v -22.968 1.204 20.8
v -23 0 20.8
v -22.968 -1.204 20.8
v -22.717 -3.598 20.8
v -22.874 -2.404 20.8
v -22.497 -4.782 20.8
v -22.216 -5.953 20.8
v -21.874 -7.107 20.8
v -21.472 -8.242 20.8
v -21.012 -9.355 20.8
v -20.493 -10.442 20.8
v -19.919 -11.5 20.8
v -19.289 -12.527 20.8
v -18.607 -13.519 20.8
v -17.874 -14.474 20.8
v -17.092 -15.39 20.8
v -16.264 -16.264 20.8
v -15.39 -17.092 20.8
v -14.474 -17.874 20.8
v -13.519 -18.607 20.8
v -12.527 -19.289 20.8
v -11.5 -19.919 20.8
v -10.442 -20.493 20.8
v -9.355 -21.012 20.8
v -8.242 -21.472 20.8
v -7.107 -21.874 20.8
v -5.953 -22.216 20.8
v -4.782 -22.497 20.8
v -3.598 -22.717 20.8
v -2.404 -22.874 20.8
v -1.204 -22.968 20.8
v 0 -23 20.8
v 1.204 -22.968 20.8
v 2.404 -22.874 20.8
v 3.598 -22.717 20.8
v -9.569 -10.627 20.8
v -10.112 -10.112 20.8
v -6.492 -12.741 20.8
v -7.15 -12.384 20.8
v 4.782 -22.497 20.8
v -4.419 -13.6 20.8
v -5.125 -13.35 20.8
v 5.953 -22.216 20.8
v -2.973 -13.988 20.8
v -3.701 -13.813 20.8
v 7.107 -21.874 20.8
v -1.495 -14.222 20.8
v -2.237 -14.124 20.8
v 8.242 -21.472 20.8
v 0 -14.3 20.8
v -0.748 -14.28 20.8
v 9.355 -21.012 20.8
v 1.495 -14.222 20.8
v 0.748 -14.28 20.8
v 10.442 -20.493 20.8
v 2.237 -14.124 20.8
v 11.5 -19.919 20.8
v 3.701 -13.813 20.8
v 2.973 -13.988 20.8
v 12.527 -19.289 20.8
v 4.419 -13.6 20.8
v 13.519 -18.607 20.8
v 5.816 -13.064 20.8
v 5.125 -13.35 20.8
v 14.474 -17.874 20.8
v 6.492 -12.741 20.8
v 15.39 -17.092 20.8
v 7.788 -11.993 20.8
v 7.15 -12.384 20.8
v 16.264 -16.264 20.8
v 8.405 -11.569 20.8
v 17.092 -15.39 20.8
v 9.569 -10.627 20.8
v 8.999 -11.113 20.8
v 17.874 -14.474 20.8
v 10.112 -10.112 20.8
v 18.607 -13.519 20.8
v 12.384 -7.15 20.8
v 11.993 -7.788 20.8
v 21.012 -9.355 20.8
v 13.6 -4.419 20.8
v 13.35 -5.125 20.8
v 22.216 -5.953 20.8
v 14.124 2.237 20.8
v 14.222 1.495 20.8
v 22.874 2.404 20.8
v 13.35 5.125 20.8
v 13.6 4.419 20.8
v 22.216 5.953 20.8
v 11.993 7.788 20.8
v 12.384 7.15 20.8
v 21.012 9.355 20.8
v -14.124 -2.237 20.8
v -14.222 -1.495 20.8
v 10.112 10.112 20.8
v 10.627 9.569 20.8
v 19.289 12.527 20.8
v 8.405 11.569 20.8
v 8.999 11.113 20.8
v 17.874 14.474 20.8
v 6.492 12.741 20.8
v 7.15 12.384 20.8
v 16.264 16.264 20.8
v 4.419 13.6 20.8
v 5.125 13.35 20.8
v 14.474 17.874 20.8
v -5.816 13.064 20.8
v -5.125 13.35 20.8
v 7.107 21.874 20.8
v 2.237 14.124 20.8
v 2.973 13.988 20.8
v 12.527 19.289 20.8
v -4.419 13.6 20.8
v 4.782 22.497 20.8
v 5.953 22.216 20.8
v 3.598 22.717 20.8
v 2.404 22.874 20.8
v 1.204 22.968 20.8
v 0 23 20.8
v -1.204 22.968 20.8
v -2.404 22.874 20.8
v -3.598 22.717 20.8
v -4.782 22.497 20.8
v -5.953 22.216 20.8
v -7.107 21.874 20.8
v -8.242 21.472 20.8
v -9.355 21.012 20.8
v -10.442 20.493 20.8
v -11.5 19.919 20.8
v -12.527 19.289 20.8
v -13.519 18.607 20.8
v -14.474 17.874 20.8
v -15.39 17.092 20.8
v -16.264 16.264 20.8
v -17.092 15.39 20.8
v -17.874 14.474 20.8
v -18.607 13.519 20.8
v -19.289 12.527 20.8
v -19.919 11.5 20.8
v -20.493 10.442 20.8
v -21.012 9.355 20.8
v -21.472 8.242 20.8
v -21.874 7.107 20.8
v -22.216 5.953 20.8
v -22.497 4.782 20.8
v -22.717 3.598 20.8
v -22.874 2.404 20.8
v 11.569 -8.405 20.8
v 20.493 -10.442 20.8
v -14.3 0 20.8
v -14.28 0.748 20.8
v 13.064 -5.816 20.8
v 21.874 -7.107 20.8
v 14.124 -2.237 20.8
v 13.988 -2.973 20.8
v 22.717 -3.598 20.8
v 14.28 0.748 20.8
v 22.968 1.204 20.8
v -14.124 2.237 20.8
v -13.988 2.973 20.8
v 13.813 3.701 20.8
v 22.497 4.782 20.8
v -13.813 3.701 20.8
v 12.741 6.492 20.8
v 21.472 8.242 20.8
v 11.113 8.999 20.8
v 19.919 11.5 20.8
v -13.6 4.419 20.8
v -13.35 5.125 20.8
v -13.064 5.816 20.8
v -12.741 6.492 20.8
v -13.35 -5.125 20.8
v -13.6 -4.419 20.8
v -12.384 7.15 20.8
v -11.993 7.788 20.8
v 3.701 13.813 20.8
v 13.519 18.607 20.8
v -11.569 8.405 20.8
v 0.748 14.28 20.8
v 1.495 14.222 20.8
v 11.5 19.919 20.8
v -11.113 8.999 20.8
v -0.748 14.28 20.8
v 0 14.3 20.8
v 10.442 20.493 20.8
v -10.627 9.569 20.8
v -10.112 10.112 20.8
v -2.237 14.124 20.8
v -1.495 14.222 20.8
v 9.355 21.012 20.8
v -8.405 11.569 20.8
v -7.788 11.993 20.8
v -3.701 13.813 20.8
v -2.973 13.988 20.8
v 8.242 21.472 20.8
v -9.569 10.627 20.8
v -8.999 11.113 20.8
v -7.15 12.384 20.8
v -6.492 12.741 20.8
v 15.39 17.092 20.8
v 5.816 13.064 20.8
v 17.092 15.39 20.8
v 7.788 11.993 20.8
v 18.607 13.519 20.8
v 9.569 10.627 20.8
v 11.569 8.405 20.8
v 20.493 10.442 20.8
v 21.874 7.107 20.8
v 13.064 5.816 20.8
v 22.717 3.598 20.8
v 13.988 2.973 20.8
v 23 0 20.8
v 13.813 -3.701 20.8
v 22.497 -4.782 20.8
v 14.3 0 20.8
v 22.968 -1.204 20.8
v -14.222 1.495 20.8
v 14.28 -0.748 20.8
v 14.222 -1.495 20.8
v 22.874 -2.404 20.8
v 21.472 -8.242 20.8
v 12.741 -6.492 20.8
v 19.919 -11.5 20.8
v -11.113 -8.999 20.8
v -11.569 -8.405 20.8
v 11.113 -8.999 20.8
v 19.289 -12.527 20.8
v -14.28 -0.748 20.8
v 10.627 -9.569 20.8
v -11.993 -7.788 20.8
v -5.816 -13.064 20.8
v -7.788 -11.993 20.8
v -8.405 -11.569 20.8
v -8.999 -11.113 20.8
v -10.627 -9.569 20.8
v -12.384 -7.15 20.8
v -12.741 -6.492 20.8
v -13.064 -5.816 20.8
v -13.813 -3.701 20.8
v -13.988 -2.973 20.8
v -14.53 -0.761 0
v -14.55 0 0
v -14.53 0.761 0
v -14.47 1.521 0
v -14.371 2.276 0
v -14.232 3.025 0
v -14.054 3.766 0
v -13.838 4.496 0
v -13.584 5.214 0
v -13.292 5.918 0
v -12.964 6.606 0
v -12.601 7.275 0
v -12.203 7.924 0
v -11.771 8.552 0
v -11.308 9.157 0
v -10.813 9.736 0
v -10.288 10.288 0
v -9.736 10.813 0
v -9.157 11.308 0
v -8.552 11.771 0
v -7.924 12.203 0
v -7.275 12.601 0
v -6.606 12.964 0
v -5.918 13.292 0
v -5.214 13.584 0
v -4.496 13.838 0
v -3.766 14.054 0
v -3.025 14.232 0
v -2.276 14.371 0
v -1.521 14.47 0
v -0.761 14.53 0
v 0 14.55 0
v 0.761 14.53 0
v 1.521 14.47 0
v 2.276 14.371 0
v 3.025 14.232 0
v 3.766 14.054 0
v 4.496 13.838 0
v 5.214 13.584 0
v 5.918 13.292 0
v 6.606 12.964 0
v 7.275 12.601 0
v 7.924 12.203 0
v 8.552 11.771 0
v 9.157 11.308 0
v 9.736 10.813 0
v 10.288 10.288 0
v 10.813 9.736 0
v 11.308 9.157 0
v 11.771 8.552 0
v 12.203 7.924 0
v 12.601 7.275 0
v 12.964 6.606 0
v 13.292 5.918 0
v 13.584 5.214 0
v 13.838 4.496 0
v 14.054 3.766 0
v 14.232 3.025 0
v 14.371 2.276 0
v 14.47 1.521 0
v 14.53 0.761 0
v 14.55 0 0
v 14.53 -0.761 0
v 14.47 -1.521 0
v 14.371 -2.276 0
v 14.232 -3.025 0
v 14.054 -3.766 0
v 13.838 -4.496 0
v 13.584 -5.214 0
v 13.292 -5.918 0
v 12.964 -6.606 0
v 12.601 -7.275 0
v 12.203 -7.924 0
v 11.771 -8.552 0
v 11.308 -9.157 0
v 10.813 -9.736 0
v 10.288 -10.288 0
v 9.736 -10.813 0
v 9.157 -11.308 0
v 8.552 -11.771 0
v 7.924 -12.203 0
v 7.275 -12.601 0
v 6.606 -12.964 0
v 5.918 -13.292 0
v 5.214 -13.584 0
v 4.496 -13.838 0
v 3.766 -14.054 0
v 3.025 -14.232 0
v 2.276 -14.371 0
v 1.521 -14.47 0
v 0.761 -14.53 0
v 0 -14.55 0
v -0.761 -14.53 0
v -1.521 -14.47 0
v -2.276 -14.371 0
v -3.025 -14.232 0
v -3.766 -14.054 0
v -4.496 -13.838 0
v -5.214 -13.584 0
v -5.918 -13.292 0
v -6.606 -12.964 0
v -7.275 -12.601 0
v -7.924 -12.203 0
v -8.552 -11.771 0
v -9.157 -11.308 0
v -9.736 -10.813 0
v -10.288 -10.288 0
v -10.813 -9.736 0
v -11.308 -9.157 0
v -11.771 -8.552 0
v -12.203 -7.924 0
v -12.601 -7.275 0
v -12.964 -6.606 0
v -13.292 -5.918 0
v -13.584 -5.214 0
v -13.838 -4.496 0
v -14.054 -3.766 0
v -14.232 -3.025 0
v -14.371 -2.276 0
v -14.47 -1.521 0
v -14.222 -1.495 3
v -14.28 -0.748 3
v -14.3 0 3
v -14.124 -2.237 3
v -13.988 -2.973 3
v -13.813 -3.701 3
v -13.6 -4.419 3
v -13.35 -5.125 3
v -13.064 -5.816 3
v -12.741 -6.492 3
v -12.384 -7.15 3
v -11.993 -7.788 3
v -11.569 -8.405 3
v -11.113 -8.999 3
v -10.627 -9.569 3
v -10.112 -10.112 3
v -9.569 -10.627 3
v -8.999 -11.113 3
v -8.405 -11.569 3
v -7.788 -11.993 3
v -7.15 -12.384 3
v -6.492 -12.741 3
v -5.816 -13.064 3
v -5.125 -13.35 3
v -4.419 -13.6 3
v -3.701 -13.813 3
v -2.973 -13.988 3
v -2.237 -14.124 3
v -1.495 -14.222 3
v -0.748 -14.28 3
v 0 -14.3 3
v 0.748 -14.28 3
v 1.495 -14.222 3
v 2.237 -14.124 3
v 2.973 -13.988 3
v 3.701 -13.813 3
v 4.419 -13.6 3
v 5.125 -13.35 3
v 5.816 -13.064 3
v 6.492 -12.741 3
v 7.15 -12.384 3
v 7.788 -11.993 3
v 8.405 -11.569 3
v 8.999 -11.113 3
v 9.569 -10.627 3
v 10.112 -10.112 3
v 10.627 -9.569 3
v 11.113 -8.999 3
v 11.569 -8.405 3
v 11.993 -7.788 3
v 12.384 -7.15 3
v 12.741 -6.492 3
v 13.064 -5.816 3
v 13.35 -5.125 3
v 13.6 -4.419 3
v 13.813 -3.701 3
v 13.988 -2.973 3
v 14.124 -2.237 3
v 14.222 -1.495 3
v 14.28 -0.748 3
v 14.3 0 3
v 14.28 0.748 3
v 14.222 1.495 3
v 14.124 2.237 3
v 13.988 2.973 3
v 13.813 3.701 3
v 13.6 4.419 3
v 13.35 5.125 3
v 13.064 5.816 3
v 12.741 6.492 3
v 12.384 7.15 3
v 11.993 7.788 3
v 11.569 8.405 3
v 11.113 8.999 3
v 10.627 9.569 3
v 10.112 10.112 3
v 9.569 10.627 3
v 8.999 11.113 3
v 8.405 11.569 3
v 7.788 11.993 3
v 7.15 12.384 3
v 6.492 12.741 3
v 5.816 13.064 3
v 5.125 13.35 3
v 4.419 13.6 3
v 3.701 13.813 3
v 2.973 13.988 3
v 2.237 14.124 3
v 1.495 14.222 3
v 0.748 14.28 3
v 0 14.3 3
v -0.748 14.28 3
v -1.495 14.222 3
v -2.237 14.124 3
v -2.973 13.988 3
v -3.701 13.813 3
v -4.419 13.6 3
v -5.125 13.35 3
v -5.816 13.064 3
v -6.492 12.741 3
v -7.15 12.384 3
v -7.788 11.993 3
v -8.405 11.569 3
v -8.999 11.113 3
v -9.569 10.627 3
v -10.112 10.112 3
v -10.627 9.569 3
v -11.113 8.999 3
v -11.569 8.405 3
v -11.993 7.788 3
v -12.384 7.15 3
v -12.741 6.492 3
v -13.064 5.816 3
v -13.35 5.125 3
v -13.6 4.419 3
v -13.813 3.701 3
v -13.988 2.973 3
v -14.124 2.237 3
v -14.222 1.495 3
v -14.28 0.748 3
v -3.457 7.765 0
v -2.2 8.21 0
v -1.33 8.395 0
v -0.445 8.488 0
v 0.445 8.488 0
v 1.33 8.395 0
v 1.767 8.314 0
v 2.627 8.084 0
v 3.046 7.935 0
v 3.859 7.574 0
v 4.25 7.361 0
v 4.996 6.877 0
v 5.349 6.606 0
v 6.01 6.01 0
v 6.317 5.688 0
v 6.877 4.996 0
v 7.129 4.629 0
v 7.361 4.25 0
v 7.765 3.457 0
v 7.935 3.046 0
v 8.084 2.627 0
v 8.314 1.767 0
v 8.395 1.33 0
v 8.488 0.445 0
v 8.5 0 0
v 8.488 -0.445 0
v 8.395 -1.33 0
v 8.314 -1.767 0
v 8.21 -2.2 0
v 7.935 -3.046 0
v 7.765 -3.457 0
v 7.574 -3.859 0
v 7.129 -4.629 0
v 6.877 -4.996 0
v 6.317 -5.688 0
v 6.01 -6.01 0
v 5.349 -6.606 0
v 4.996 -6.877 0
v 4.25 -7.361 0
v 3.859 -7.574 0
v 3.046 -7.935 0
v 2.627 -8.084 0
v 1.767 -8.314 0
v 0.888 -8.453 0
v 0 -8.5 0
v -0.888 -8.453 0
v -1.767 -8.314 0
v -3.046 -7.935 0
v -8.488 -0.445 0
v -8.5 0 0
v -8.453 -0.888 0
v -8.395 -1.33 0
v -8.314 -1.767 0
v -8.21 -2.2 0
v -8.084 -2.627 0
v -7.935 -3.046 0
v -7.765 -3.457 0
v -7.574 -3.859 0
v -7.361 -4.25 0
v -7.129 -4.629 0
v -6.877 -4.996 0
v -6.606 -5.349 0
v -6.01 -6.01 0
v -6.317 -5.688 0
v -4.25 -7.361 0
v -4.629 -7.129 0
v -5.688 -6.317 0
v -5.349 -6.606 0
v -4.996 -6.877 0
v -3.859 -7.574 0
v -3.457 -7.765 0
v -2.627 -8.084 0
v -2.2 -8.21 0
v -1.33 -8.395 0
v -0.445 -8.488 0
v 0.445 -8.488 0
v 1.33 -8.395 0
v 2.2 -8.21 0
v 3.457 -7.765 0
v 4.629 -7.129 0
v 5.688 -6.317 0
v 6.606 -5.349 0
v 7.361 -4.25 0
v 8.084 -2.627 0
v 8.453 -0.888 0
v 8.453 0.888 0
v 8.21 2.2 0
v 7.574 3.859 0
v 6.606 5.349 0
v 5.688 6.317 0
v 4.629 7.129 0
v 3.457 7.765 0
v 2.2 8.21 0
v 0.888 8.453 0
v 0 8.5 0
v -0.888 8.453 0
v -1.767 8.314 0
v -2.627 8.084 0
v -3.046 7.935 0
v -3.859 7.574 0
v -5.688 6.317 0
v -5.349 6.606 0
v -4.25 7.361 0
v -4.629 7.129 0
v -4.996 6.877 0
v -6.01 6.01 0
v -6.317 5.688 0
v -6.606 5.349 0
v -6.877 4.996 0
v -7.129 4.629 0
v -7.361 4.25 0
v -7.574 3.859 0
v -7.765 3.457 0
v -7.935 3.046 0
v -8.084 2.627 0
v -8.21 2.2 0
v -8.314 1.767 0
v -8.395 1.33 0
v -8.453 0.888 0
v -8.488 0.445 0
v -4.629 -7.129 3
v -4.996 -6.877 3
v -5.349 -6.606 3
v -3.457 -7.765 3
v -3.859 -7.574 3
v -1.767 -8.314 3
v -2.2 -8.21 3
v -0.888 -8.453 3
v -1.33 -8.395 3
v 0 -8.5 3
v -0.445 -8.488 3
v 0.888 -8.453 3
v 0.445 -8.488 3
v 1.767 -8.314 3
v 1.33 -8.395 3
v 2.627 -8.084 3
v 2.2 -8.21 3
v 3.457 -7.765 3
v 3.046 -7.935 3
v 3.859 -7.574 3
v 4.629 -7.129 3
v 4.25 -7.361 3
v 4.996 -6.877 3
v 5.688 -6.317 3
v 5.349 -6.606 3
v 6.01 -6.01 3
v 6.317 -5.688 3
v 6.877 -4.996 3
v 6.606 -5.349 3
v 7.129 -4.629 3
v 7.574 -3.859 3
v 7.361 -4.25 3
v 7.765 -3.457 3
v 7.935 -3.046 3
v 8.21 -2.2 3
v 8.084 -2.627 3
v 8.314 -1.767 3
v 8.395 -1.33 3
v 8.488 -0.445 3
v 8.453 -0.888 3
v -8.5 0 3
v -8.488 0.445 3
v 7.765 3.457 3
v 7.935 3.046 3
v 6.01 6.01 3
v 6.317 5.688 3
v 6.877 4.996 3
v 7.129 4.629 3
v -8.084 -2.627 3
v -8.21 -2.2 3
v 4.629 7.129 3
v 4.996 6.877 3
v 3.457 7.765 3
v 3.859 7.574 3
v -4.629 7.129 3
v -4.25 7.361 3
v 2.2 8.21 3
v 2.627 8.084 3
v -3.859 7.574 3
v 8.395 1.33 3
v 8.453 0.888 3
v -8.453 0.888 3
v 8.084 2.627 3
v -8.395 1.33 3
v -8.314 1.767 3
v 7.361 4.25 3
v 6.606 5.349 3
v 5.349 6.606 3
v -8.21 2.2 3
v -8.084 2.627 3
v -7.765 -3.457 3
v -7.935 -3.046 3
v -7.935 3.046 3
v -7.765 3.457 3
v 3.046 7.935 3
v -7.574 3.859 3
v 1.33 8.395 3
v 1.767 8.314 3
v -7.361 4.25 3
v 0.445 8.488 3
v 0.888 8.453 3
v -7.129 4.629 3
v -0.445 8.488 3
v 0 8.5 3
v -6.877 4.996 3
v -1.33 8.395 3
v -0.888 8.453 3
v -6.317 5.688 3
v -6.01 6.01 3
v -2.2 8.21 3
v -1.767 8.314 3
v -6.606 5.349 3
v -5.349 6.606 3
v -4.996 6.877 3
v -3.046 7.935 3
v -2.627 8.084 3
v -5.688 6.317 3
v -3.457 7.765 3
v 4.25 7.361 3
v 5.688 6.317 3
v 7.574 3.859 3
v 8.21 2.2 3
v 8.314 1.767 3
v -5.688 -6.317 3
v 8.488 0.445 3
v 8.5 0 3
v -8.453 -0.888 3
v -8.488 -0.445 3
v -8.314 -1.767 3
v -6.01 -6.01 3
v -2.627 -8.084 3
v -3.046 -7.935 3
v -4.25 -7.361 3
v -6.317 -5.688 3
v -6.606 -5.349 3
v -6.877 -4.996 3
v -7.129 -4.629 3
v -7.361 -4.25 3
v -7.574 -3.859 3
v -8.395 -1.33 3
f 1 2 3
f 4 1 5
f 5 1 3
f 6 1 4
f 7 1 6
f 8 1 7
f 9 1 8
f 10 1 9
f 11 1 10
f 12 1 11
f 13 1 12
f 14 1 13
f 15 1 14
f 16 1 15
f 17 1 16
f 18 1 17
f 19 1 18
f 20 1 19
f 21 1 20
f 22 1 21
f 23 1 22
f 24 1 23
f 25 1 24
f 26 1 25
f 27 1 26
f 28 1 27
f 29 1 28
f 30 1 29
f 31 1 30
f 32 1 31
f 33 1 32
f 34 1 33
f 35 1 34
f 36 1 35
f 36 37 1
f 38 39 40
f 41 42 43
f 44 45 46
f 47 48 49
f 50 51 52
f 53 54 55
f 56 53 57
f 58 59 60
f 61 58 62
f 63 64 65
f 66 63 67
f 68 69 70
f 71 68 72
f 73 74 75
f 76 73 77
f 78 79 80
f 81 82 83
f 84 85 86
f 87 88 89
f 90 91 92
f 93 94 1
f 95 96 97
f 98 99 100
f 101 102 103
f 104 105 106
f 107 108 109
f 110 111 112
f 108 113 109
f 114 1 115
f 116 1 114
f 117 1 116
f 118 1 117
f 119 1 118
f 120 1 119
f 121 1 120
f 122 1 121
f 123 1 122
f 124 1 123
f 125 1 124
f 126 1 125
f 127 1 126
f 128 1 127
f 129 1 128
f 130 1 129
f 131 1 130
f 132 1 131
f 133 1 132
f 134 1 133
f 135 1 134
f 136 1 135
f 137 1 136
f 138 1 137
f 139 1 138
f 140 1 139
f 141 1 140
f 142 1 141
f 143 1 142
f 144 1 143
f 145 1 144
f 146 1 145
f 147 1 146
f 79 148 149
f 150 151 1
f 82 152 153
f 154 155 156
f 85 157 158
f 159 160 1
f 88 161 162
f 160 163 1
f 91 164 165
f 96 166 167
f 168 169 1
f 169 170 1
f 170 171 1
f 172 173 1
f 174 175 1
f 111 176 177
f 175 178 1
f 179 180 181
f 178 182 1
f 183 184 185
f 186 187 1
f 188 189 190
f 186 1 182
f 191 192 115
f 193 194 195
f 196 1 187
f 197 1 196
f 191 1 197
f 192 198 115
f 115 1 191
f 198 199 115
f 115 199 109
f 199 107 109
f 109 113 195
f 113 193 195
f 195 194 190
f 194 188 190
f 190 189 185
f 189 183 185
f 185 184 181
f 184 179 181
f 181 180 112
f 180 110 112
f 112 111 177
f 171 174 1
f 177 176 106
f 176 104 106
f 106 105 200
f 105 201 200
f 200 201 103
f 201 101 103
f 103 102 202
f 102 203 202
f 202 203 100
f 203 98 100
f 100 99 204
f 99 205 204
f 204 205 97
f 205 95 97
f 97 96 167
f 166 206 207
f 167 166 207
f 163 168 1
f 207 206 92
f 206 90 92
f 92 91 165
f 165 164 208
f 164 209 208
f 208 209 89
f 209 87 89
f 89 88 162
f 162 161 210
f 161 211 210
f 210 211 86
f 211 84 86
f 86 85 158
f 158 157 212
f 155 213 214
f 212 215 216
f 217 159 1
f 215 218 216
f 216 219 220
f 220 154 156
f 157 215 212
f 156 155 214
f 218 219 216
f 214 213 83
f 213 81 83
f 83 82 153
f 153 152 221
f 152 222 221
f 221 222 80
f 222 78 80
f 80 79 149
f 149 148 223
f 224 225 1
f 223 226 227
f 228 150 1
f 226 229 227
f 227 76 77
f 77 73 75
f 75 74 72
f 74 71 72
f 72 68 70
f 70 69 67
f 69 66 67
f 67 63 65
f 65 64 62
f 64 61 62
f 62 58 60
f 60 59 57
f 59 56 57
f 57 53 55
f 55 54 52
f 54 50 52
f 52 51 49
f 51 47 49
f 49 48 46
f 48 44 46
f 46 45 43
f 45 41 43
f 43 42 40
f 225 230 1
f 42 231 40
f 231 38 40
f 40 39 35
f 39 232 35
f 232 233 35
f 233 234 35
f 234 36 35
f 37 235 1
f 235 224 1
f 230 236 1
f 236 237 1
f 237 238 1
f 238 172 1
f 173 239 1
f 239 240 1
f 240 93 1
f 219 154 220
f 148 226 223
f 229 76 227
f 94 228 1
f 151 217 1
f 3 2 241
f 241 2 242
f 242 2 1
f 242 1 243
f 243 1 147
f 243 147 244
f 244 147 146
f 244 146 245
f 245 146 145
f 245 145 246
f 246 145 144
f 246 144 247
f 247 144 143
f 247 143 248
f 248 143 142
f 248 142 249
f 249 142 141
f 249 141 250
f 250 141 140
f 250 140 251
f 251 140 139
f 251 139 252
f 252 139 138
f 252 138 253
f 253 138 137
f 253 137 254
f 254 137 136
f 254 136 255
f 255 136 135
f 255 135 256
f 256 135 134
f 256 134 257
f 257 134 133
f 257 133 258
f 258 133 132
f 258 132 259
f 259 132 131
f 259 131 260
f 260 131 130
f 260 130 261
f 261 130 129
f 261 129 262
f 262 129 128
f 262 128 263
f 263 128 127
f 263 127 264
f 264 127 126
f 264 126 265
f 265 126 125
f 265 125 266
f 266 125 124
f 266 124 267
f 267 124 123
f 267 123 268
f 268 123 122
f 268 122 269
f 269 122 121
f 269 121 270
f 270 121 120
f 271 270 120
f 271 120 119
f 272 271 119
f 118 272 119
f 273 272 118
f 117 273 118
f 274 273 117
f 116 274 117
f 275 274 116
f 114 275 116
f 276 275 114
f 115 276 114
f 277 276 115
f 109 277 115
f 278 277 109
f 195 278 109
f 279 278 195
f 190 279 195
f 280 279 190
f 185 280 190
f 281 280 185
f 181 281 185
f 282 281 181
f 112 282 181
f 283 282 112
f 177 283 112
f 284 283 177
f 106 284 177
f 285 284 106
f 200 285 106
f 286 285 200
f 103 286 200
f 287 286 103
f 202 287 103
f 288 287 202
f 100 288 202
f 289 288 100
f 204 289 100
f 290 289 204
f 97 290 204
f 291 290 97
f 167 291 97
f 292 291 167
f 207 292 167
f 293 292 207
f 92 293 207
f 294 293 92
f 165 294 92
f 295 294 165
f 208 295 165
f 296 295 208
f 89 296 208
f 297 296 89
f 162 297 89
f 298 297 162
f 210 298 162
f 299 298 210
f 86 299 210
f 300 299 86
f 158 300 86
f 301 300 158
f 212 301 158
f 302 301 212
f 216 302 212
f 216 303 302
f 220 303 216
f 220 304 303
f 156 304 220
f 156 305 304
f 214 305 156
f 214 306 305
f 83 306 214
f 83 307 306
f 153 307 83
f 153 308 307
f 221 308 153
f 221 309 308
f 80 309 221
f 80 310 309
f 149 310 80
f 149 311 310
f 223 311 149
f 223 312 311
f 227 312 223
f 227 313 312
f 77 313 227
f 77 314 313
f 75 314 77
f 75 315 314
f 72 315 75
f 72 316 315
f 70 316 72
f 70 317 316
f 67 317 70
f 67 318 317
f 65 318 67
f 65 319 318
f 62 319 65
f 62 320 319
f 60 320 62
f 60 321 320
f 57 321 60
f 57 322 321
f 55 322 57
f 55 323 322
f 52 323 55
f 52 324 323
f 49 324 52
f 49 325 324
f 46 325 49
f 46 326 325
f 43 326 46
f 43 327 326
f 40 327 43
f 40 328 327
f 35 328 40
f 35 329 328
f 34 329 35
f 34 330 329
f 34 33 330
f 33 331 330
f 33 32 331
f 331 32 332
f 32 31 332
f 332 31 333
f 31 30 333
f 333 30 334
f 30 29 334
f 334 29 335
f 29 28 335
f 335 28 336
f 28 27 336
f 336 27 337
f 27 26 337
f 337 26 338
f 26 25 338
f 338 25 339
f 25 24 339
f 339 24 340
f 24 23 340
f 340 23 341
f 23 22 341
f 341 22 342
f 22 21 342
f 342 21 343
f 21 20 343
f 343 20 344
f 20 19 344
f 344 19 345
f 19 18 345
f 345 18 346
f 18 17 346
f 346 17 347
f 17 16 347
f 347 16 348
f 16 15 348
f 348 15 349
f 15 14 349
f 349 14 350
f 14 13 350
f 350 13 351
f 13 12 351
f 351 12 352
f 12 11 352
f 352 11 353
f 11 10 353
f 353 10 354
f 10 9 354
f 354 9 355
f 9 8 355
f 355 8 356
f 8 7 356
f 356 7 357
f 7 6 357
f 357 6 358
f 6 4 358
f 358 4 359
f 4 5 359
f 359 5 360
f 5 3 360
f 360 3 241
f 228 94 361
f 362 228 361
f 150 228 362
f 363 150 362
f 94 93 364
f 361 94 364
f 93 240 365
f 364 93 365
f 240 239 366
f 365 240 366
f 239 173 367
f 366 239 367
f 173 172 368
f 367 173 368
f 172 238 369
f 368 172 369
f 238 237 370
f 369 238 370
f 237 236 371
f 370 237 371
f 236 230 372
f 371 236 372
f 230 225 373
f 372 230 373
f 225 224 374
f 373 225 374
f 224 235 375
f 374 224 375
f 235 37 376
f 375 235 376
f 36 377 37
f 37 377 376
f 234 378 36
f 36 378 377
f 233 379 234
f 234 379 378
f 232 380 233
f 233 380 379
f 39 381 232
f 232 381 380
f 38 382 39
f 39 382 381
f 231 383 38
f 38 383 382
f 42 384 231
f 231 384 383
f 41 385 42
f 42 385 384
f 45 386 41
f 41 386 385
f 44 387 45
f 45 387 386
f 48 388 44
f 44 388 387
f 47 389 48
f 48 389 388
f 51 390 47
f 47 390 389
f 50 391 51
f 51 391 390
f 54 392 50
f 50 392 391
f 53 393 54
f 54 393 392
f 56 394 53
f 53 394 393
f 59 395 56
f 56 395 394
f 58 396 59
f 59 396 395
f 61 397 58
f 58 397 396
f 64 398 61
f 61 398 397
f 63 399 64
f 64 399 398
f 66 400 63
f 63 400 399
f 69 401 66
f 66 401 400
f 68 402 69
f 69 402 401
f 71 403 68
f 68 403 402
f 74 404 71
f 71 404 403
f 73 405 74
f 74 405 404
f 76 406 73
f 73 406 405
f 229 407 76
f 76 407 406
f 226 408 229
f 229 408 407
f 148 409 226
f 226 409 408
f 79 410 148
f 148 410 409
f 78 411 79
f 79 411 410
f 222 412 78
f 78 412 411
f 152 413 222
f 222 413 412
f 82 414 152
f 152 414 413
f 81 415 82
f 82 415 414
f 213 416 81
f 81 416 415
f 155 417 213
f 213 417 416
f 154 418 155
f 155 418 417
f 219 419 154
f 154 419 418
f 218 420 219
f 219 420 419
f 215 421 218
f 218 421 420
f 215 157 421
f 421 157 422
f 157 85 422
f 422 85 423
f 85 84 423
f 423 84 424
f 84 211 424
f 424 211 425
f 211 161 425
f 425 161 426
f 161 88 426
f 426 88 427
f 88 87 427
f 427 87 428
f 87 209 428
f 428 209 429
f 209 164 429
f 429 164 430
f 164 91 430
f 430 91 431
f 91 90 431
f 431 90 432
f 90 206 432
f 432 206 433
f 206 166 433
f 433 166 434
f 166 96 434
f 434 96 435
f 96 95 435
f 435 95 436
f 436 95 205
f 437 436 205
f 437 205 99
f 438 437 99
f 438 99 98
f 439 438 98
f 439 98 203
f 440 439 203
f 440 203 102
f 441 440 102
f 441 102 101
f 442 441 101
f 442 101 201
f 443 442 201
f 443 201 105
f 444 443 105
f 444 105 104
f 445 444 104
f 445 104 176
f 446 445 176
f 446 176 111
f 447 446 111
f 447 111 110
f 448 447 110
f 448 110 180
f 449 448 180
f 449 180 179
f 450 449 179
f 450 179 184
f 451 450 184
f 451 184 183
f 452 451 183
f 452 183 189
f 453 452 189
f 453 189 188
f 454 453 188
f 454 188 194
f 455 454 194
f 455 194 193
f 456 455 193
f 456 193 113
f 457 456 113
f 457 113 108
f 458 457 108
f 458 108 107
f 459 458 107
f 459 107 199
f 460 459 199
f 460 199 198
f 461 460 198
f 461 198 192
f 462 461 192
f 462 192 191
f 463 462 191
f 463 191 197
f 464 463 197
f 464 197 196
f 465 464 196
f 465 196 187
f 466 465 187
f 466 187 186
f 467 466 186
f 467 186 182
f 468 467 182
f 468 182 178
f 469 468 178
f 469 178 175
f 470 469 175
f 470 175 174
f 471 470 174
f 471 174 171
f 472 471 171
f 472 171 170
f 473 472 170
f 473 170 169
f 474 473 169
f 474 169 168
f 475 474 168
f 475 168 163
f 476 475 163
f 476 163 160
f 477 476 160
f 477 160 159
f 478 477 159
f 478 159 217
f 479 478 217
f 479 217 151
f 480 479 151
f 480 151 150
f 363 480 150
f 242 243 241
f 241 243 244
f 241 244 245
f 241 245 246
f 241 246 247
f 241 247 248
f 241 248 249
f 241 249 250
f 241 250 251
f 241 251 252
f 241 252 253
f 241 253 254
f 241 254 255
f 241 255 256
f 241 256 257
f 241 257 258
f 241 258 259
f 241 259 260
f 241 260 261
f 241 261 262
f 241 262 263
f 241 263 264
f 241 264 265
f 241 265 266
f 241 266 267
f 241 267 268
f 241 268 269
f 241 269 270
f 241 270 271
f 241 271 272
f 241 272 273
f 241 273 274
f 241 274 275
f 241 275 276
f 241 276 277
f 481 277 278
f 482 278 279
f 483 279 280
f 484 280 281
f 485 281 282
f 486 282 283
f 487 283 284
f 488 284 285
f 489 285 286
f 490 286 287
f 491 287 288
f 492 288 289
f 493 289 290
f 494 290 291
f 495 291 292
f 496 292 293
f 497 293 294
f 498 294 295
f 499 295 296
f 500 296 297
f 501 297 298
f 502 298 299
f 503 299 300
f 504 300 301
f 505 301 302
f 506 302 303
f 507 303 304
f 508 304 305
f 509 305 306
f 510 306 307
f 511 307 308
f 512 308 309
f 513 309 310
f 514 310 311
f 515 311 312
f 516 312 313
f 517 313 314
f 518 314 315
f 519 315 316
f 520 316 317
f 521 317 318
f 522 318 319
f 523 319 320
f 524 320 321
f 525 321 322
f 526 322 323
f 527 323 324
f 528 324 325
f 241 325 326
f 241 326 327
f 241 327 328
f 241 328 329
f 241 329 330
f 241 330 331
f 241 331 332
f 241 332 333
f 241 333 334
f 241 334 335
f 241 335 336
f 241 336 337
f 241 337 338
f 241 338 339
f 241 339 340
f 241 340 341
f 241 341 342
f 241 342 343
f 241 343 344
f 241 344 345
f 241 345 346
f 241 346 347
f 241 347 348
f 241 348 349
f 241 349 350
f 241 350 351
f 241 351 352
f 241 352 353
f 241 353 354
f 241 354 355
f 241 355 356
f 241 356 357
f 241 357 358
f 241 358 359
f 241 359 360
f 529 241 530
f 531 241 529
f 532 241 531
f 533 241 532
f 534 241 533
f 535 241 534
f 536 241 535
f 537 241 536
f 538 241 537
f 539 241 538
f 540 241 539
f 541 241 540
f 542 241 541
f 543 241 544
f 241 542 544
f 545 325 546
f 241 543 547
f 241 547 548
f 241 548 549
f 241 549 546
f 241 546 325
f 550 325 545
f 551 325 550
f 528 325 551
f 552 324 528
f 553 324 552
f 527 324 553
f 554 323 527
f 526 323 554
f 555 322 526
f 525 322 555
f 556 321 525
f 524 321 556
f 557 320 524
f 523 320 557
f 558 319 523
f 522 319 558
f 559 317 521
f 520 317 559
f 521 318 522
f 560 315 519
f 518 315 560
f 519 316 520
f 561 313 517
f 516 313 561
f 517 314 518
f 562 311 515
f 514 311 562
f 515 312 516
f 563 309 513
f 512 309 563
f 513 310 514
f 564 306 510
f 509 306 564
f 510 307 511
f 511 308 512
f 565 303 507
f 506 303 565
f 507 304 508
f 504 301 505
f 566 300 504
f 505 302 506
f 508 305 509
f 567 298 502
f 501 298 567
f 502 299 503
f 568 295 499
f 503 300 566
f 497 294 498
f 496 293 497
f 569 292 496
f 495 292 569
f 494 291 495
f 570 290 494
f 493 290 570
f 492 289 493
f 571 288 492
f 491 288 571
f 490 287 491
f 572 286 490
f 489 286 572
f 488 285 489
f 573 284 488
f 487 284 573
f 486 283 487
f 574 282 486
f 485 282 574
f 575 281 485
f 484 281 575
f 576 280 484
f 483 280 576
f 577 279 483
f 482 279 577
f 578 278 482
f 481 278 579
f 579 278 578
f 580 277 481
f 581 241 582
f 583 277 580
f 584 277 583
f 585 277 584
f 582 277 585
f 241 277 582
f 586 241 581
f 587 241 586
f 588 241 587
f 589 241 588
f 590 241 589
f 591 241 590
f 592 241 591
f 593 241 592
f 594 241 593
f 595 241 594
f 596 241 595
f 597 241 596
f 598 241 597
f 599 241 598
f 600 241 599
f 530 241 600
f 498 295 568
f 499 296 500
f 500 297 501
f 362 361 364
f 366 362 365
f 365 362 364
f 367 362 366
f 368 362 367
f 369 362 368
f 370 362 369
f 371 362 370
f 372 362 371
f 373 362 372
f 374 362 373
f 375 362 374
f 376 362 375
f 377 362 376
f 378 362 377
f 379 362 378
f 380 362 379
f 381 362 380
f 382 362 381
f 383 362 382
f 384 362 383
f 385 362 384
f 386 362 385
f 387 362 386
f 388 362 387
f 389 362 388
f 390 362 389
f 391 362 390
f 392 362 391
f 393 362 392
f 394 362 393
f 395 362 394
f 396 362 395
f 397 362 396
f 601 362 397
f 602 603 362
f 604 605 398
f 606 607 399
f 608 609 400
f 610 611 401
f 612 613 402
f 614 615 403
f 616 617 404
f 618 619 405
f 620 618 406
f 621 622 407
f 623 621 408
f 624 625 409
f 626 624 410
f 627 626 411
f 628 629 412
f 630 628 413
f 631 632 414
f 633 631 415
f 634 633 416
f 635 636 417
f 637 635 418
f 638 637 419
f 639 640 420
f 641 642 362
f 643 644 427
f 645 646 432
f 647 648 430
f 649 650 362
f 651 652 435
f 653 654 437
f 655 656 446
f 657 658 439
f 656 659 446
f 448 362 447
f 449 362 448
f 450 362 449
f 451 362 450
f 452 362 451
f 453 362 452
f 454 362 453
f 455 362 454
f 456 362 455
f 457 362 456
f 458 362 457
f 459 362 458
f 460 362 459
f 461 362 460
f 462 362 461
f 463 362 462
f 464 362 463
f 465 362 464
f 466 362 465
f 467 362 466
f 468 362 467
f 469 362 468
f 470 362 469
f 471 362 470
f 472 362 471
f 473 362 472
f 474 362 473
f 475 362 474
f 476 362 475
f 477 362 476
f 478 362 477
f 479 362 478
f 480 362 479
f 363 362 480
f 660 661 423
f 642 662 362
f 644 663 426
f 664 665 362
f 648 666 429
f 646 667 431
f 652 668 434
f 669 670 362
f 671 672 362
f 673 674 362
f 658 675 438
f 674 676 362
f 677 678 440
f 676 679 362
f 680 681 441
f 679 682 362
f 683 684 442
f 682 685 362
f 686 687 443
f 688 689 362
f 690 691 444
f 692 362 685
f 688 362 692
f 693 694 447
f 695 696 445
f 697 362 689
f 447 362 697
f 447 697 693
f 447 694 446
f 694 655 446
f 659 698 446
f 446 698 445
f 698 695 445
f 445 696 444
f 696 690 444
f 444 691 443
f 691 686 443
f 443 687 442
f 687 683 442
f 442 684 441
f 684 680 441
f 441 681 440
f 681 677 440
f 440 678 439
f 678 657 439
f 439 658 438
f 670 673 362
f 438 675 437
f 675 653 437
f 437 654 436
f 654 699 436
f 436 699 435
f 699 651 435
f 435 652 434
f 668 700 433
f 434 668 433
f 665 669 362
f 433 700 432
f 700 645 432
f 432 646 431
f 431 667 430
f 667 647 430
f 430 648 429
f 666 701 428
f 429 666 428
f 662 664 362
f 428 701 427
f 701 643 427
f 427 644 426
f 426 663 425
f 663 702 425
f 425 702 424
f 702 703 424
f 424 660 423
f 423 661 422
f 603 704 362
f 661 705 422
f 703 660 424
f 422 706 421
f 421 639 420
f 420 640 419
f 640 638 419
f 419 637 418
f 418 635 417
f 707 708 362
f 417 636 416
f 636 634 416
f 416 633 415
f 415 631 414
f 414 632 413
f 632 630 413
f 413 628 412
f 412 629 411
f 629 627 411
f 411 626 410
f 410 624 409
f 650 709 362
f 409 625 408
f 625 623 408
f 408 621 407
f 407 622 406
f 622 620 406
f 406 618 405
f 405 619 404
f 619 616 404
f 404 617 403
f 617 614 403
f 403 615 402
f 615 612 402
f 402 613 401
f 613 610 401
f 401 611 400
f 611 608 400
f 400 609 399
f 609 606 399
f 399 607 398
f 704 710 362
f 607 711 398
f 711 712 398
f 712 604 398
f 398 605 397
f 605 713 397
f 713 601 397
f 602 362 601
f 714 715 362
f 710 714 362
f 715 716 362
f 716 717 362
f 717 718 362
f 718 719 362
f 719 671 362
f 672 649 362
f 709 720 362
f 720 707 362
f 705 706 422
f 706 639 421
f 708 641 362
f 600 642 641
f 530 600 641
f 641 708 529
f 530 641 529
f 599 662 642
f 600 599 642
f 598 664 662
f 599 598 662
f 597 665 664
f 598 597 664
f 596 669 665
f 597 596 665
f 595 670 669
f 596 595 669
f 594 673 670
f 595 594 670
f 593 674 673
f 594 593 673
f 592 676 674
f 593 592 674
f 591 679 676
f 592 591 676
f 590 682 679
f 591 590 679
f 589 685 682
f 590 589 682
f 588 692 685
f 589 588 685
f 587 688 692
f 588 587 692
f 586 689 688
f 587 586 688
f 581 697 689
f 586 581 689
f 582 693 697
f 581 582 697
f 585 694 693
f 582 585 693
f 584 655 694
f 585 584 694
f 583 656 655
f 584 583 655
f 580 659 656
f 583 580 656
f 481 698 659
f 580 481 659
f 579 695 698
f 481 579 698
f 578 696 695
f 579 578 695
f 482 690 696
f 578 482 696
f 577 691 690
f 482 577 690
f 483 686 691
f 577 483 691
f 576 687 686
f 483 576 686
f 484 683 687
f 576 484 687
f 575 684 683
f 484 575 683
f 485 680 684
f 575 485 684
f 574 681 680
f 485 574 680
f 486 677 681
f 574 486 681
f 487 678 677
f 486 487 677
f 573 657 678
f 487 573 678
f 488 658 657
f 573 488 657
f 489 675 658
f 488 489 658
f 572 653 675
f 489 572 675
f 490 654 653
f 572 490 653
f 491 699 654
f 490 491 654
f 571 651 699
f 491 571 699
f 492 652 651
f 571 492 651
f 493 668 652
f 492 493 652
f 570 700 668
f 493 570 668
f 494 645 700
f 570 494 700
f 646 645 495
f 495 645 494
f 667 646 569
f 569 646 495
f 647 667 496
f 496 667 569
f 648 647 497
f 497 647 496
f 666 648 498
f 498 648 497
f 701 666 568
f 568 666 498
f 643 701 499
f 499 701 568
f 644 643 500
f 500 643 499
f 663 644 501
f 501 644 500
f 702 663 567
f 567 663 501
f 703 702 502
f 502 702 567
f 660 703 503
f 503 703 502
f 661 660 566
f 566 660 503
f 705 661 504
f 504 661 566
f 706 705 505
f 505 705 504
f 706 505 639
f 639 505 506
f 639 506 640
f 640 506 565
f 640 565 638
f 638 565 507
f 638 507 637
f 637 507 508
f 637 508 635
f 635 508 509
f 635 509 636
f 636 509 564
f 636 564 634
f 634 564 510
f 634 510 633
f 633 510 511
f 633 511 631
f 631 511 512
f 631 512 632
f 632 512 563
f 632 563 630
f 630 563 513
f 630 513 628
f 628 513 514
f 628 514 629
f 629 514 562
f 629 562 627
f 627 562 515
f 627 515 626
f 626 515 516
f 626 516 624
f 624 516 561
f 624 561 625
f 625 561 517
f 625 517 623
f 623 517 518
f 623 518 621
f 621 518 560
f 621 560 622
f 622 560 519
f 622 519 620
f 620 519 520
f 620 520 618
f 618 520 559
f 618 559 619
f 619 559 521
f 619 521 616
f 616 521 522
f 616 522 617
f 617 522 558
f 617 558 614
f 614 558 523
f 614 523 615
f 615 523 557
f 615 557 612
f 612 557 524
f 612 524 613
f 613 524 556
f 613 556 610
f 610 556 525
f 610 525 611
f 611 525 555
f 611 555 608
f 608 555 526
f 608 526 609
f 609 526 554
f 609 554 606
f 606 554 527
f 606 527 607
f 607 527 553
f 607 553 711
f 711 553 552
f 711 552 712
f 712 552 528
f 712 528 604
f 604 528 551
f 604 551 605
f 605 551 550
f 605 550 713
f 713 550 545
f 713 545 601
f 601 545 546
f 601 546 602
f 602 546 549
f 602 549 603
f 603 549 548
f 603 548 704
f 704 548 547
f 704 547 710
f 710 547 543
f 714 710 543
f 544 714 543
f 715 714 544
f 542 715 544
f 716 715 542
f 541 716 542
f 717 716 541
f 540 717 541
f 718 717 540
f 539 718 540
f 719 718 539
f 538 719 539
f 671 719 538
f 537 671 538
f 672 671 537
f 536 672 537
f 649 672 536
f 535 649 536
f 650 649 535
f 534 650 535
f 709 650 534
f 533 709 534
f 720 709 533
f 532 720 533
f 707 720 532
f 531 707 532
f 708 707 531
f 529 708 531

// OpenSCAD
coneheight = 20.8;
radiusEyepiece = 14.05;
radiusLenscone = 23;
err = 0.01;
clearance = 0.25;
lipthickness = 3;
$fn=120;

difference(){
cylinder(h = coneheight, r1 = radiusEyepiece+0.5, r2 = radiusLenscone, center = false);
translate([0,0,-err/2])
cylinder(h = coneheight+err, r = 8.5, center=false
);
translate([0,0,lipthickness])
cylinder(h=coneheight, r = radiusEyepiece+clearance, center=false);
}
